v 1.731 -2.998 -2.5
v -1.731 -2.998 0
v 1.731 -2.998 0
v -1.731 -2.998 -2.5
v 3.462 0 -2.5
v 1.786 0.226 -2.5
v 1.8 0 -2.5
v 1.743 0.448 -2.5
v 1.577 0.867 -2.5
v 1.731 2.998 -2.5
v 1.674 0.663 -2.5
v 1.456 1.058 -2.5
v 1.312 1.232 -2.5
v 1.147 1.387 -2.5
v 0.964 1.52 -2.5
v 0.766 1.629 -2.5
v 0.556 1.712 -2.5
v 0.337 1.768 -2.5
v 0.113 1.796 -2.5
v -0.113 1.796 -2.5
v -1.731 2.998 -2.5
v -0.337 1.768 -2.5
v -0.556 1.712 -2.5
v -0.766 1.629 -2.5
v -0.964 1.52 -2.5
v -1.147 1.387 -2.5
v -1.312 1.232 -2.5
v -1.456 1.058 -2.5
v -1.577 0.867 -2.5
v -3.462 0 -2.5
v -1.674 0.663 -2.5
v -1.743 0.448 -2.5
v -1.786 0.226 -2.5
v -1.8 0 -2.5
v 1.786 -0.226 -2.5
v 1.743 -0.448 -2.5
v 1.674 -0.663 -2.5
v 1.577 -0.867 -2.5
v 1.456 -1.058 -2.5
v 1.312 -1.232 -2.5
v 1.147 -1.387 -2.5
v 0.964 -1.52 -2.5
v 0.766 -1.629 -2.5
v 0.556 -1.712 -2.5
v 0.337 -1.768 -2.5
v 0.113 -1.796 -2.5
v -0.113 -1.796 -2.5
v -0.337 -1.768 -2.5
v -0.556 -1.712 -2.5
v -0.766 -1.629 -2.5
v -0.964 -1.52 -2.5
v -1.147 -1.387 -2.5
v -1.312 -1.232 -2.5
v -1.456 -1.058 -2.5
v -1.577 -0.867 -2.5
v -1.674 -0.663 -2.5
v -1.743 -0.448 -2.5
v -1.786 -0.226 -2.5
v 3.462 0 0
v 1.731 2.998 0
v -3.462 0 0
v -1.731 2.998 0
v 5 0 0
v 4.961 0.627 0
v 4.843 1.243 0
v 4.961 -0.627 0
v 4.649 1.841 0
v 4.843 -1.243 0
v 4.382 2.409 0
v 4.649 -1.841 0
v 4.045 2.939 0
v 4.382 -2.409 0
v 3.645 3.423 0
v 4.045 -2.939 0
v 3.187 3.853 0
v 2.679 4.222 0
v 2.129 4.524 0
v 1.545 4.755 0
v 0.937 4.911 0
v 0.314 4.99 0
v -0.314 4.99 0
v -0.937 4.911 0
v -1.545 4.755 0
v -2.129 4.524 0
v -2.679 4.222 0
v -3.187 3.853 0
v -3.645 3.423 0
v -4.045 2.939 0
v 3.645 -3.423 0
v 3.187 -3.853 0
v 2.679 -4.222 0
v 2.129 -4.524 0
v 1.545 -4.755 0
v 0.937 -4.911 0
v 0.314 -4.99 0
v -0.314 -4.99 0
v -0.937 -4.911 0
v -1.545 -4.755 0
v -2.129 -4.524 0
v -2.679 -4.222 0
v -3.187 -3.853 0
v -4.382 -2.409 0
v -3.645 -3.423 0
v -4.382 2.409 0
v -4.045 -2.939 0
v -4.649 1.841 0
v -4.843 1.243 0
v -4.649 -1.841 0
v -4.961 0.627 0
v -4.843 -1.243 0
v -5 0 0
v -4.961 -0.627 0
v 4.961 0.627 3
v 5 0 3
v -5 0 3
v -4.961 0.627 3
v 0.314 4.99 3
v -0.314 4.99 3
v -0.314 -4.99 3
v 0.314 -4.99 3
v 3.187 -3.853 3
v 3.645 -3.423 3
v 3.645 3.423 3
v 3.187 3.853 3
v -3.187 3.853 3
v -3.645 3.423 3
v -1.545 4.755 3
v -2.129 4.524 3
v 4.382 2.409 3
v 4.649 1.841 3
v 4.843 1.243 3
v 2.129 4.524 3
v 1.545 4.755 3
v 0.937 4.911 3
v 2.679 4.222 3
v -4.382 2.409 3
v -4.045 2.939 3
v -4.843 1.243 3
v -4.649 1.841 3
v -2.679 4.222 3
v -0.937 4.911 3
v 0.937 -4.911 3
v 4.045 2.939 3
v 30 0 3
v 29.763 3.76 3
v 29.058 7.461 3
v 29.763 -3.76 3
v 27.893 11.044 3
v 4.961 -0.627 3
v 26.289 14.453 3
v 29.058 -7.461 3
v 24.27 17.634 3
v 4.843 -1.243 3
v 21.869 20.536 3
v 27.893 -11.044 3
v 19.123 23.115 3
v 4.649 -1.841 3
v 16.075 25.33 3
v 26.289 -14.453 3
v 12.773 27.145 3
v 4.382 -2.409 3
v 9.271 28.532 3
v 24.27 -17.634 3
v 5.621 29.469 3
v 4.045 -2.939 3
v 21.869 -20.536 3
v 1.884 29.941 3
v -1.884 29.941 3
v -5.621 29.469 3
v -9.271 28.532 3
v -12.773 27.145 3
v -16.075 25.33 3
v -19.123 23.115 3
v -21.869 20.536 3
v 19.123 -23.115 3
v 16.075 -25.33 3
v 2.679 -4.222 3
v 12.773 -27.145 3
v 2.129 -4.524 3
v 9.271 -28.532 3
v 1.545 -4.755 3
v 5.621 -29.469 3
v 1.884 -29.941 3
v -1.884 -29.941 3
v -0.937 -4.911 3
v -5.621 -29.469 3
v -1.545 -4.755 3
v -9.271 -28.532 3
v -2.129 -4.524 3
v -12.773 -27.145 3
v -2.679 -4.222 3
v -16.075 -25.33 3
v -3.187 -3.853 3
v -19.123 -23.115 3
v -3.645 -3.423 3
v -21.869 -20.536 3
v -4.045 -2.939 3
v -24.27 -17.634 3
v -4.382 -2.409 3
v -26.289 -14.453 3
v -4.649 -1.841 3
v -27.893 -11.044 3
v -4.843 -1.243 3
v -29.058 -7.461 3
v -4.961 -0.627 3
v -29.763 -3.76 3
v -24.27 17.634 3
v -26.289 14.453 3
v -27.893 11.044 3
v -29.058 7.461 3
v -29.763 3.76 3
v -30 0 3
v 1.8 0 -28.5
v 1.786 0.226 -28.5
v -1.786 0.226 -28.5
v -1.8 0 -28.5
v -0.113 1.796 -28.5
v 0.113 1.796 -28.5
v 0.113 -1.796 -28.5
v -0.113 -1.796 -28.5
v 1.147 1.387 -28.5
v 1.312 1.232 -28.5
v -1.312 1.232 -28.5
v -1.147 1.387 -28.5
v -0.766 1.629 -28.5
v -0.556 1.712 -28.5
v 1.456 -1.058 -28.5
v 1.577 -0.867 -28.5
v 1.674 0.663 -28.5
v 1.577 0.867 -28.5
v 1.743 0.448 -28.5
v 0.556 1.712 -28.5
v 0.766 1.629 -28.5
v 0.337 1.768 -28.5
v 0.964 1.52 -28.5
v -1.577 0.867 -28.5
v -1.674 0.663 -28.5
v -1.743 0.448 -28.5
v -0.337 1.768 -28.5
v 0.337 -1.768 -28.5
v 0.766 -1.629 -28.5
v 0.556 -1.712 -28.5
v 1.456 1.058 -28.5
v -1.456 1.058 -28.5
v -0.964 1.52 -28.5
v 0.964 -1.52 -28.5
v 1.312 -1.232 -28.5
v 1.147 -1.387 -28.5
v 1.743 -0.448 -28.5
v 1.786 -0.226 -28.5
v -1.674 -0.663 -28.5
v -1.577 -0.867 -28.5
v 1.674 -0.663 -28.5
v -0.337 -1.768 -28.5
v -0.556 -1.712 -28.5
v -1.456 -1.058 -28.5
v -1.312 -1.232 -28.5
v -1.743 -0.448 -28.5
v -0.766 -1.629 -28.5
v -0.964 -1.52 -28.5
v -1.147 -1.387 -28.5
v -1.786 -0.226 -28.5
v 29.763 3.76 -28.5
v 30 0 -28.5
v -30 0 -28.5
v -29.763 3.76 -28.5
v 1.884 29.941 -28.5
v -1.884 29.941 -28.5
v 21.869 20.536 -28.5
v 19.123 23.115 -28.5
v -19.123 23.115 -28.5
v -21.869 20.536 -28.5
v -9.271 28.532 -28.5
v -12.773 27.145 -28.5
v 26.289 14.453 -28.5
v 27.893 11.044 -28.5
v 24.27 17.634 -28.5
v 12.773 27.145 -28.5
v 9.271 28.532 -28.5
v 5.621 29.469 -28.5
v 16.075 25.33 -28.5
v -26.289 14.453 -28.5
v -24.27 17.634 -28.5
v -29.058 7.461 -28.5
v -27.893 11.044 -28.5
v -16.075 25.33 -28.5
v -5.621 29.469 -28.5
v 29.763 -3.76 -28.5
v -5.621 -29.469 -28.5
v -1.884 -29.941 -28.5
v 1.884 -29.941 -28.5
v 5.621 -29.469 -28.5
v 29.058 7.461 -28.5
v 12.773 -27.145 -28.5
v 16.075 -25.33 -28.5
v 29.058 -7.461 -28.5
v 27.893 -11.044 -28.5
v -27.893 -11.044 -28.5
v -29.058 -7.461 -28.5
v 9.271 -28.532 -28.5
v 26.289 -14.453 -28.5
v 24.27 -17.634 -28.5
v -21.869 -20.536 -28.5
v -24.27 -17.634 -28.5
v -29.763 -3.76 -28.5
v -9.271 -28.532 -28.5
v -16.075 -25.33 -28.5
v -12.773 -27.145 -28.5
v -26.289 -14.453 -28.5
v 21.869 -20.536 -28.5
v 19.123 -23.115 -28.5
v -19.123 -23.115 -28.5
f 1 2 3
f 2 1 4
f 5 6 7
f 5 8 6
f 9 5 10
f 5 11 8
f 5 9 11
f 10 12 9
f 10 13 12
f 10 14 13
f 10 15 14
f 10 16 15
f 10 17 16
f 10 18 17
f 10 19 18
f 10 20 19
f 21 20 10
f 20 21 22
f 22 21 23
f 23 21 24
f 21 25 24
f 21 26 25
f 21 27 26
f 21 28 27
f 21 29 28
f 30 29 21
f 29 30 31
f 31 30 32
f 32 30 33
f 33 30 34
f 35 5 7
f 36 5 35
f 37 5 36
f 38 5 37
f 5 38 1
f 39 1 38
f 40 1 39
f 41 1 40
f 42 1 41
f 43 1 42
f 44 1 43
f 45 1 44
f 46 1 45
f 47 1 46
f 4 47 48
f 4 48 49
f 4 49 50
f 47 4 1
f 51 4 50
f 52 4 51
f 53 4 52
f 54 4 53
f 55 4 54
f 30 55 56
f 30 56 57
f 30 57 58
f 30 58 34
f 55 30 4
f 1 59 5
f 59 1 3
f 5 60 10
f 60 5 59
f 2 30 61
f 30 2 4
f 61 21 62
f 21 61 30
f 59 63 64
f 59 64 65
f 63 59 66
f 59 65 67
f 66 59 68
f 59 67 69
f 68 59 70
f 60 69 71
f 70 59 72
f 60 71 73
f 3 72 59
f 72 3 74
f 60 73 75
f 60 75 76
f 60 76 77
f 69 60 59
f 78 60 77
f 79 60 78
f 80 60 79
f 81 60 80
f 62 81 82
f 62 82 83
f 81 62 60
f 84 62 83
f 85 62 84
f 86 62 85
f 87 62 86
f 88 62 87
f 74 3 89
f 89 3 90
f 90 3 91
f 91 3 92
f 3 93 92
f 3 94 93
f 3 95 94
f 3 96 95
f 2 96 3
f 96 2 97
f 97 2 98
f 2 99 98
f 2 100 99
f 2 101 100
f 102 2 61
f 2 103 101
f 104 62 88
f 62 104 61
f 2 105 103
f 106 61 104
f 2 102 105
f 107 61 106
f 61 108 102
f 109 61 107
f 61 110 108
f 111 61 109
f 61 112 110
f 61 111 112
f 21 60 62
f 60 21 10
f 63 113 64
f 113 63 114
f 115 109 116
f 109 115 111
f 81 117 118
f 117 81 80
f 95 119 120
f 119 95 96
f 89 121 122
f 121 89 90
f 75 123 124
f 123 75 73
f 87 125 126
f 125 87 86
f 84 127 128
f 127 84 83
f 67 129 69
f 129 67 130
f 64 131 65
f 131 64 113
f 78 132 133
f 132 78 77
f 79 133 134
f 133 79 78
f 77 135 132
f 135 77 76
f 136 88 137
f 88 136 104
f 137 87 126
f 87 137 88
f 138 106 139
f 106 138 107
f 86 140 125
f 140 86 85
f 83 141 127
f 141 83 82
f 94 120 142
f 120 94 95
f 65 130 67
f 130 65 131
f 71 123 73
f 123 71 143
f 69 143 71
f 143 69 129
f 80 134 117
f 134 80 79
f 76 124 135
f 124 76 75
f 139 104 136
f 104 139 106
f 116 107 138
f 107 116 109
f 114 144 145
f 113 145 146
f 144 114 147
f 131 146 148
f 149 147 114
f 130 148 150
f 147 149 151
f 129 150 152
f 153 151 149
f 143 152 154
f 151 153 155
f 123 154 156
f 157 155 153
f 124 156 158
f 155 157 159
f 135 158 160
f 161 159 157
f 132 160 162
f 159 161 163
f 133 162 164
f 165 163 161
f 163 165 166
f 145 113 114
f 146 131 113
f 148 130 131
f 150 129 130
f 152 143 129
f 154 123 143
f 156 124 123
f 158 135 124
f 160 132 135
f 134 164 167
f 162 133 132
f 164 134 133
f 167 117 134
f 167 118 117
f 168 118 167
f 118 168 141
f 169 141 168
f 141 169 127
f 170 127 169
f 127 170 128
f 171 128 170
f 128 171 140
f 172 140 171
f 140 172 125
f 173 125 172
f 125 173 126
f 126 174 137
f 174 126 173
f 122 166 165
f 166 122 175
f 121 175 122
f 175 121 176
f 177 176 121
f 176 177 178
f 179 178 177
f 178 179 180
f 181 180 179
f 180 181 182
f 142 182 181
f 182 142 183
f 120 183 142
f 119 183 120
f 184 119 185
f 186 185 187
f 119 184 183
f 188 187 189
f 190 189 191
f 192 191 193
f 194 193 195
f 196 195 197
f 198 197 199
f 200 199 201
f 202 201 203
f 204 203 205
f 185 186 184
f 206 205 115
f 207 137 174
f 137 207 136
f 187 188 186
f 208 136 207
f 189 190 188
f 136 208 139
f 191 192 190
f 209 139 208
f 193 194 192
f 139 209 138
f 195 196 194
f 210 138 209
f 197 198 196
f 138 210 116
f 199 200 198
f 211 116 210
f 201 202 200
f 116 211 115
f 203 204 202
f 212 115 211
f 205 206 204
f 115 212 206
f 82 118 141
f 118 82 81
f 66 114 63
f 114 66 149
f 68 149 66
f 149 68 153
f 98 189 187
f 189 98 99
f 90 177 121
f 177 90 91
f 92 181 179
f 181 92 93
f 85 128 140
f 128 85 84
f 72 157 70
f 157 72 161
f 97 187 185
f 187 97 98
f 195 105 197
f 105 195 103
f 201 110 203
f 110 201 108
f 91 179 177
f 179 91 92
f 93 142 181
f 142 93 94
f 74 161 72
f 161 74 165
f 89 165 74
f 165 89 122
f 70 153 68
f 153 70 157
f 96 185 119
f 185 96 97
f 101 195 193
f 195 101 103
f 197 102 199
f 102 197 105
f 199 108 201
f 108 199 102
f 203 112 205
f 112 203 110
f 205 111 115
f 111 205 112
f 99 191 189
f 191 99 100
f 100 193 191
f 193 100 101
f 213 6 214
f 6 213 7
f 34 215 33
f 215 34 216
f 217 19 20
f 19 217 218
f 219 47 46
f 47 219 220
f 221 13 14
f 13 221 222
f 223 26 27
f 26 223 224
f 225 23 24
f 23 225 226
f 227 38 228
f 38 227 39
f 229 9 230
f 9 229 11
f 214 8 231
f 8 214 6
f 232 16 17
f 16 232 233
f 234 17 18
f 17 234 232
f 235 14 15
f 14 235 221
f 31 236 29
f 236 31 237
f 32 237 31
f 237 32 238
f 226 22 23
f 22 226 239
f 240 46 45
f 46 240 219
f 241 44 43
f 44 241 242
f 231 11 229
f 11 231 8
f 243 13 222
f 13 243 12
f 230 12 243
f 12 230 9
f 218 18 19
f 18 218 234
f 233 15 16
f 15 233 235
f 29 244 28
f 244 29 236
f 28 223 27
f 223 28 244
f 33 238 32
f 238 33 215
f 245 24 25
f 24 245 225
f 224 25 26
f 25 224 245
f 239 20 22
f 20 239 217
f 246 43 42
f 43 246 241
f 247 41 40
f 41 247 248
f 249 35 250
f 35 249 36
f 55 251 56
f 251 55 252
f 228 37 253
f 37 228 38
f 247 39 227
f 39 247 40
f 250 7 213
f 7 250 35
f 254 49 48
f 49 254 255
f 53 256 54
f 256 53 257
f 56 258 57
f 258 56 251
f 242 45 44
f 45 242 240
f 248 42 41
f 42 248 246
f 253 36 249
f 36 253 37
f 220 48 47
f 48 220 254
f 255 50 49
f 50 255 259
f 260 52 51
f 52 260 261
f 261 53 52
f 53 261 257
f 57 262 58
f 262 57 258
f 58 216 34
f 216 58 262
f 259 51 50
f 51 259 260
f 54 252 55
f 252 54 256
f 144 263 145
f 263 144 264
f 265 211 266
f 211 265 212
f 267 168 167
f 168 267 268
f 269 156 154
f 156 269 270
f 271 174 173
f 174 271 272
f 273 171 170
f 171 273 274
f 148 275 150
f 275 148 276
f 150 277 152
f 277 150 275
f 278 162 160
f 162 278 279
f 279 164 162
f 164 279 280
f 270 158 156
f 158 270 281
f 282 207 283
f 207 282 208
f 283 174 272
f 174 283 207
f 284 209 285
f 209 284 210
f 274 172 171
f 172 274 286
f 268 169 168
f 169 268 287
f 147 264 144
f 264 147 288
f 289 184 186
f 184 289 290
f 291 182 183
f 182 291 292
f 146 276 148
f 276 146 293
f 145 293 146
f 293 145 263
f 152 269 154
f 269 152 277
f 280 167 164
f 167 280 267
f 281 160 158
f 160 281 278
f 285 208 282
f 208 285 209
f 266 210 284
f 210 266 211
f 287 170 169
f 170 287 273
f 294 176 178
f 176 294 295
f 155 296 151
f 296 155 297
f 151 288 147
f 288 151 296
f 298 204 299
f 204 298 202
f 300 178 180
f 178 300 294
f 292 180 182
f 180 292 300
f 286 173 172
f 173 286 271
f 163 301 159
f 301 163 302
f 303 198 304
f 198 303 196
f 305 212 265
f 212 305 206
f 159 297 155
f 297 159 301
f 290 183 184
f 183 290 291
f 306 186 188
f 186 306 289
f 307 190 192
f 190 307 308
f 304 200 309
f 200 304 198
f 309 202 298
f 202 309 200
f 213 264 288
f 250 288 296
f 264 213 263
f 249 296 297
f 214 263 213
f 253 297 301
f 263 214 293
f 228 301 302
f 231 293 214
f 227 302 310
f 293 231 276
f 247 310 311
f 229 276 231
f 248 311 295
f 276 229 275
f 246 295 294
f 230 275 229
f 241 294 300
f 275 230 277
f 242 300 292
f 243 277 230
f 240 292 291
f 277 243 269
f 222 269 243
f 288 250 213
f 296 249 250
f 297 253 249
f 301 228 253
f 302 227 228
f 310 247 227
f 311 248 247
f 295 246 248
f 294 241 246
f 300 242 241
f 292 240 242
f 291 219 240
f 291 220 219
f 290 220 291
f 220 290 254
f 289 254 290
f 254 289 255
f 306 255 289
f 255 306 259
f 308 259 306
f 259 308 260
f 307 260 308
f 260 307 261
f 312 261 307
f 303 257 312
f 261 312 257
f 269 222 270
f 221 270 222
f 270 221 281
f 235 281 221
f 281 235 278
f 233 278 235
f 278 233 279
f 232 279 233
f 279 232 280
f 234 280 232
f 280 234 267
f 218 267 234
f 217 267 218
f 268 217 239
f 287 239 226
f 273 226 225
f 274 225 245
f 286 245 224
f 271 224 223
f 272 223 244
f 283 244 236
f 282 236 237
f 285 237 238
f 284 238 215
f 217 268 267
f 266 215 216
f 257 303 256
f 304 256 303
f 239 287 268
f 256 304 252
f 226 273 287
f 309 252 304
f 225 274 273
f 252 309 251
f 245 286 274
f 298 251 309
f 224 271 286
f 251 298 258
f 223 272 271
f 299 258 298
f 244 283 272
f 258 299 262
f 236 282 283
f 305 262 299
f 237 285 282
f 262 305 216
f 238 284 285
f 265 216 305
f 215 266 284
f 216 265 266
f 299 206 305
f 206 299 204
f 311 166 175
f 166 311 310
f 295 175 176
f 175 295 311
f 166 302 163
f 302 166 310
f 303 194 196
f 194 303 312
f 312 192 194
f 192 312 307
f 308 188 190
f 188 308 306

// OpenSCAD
$fn = 50;

difference() {
	union() {
		translate(v = [0, 0, -28.5]) {
			cylinder(h = 31.5, r = 30.0);
		}
	}
	union() {
		translate(v = [0, 0, 0]) {
			rotate(a = [0, 0, 0]) {
				difference() {
					union() {
						translate(v = [0, 0, -2.5]) {
							linear_extrude(height = 2.5) {
								polygon(points = [[3.4619999999999997, 0.0], [1.7310000000000003, 2.9981799479017264], [-1.7309999999999992, 2.9981799479017264], [-3.4619999999999997, 4.2397272186481365e-16], [-1.7310000000000014, -2.998179947901726], [1.7309999999999977, -2.9981799479017277]]);
							}
						}
					}
					union();
				}
			}
		}
		#cylinder(h = 3, r = 5.0);
		#translate(v = [0, 0, -100.0]) {
			cylinder(h = 200, r = 1.8);
		}
	}
}
